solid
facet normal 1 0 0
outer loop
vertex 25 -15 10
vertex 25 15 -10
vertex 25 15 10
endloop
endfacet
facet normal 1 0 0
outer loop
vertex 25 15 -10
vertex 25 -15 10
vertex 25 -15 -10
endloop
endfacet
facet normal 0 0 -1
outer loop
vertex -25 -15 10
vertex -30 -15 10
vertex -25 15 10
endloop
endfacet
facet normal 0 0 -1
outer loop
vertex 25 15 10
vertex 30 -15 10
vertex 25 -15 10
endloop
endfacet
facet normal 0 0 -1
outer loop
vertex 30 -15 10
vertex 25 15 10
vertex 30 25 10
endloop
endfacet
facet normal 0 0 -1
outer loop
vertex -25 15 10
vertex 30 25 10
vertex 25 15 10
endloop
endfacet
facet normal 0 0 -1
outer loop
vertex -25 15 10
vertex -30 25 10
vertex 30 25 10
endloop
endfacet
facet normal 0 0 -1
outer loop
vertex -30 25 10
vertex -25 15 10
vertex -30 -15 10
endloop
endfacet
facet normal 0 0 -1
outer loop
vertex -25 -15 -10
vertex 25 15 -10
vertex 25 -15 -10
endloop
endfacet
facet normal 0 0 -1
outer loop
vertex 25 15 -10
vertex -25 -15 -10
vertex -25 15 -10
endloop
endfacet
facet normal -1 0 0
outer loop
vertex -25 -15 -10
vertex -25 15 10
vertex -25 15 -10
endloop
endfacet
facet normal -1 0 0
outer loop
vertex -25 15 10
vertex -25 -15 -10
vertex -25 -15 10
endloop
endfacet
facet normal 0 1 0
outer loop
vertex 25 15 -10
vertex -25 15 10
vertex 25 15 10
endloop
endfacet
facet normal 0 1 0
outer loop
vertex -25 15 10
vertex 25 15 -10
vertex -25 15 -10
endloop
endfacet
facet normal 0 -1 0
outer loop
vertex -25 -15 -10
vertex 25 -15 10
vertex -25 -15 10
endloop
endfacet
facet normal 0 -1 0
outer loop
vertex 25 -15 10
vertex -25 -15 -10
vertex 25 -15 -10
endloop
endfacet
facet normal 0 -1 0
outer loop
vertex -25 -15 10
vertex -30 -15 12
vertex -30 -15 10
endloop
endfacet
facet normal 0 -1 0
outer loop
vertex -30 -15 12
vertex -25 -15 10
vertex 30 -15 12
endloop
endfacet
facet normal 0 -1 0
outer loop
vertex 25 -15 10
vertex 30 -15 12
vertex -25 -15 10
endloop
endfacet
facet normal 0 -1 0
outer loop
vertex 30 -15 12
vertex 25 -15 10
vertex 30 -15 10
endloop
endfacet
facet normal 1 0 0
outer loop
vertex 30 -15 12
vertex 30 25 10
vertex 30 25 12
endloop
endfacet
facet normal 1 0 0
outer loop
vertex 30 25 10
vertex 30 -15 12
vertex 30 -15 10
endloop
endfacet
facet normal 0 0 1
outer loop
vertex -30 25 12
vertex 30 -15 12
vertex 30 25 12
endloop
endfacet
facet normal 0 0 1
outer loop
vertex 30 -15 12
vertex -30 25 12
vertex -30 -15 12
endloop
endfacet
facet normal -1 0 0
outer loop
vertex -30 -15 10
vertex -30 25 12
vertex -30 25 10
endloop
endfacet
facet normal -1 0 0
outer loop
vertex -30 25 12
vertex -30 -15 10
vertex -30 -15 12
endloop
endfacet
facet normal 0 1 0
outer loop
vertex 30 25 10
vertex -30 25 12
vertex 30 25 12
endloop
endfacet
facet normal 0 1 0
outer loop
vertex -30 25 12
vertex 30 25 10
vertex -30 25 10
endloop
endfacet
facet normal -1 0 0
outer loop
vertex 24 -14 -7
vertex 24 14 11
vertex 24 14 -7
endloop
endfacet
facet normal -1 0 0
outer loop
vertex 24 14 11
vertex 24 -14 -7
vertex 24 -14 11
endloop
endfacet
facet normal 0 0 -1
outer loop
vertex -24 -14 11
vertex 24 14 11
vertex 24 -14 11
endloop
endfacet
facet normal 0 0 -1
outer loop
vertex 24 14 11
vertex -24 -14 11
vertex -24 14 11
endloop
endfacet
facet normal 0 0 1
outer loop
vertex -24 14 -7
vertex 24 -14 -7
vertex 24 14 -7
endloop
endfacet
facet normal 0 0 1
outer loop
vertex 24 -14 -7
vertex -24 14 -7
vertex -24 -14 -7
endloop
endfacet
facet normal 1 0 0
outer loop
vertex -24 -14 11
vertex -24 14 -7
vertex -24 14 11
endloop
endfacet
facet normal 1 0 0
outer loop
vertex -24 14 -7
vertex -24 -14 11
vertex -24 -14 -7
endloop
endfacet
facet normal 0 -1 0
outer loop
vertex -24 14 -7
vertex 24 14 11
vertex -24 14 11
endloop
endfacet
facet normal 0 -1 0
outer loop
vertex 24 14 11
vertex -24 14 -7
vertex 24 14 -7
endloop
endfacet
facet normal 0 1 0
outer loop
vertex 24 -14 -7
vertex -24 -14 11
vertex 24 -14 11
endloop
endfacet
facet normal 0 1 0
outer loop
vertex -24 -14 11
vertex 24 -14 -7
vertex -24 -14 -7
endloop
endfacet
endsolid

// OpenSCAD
module rectangular_housing() {
    difference() {
        // Outer shape with rectangular cross-section and flanged edges
        union() {
            // Base rectangular structure
            cube([50, 30, 20], center = true);
            
            // Flanged edges at the top
            translate([-30, -15, 10]) {
                cube([60, 40, 2], center = false);
            }
        }
        
        // Inner hollow part
        translate([0, 0, 2]) {
            cube([48, 28, 18], center = true);
        }
    }
}

// Call the module to render the rectangular housing
rectangular_housing();
